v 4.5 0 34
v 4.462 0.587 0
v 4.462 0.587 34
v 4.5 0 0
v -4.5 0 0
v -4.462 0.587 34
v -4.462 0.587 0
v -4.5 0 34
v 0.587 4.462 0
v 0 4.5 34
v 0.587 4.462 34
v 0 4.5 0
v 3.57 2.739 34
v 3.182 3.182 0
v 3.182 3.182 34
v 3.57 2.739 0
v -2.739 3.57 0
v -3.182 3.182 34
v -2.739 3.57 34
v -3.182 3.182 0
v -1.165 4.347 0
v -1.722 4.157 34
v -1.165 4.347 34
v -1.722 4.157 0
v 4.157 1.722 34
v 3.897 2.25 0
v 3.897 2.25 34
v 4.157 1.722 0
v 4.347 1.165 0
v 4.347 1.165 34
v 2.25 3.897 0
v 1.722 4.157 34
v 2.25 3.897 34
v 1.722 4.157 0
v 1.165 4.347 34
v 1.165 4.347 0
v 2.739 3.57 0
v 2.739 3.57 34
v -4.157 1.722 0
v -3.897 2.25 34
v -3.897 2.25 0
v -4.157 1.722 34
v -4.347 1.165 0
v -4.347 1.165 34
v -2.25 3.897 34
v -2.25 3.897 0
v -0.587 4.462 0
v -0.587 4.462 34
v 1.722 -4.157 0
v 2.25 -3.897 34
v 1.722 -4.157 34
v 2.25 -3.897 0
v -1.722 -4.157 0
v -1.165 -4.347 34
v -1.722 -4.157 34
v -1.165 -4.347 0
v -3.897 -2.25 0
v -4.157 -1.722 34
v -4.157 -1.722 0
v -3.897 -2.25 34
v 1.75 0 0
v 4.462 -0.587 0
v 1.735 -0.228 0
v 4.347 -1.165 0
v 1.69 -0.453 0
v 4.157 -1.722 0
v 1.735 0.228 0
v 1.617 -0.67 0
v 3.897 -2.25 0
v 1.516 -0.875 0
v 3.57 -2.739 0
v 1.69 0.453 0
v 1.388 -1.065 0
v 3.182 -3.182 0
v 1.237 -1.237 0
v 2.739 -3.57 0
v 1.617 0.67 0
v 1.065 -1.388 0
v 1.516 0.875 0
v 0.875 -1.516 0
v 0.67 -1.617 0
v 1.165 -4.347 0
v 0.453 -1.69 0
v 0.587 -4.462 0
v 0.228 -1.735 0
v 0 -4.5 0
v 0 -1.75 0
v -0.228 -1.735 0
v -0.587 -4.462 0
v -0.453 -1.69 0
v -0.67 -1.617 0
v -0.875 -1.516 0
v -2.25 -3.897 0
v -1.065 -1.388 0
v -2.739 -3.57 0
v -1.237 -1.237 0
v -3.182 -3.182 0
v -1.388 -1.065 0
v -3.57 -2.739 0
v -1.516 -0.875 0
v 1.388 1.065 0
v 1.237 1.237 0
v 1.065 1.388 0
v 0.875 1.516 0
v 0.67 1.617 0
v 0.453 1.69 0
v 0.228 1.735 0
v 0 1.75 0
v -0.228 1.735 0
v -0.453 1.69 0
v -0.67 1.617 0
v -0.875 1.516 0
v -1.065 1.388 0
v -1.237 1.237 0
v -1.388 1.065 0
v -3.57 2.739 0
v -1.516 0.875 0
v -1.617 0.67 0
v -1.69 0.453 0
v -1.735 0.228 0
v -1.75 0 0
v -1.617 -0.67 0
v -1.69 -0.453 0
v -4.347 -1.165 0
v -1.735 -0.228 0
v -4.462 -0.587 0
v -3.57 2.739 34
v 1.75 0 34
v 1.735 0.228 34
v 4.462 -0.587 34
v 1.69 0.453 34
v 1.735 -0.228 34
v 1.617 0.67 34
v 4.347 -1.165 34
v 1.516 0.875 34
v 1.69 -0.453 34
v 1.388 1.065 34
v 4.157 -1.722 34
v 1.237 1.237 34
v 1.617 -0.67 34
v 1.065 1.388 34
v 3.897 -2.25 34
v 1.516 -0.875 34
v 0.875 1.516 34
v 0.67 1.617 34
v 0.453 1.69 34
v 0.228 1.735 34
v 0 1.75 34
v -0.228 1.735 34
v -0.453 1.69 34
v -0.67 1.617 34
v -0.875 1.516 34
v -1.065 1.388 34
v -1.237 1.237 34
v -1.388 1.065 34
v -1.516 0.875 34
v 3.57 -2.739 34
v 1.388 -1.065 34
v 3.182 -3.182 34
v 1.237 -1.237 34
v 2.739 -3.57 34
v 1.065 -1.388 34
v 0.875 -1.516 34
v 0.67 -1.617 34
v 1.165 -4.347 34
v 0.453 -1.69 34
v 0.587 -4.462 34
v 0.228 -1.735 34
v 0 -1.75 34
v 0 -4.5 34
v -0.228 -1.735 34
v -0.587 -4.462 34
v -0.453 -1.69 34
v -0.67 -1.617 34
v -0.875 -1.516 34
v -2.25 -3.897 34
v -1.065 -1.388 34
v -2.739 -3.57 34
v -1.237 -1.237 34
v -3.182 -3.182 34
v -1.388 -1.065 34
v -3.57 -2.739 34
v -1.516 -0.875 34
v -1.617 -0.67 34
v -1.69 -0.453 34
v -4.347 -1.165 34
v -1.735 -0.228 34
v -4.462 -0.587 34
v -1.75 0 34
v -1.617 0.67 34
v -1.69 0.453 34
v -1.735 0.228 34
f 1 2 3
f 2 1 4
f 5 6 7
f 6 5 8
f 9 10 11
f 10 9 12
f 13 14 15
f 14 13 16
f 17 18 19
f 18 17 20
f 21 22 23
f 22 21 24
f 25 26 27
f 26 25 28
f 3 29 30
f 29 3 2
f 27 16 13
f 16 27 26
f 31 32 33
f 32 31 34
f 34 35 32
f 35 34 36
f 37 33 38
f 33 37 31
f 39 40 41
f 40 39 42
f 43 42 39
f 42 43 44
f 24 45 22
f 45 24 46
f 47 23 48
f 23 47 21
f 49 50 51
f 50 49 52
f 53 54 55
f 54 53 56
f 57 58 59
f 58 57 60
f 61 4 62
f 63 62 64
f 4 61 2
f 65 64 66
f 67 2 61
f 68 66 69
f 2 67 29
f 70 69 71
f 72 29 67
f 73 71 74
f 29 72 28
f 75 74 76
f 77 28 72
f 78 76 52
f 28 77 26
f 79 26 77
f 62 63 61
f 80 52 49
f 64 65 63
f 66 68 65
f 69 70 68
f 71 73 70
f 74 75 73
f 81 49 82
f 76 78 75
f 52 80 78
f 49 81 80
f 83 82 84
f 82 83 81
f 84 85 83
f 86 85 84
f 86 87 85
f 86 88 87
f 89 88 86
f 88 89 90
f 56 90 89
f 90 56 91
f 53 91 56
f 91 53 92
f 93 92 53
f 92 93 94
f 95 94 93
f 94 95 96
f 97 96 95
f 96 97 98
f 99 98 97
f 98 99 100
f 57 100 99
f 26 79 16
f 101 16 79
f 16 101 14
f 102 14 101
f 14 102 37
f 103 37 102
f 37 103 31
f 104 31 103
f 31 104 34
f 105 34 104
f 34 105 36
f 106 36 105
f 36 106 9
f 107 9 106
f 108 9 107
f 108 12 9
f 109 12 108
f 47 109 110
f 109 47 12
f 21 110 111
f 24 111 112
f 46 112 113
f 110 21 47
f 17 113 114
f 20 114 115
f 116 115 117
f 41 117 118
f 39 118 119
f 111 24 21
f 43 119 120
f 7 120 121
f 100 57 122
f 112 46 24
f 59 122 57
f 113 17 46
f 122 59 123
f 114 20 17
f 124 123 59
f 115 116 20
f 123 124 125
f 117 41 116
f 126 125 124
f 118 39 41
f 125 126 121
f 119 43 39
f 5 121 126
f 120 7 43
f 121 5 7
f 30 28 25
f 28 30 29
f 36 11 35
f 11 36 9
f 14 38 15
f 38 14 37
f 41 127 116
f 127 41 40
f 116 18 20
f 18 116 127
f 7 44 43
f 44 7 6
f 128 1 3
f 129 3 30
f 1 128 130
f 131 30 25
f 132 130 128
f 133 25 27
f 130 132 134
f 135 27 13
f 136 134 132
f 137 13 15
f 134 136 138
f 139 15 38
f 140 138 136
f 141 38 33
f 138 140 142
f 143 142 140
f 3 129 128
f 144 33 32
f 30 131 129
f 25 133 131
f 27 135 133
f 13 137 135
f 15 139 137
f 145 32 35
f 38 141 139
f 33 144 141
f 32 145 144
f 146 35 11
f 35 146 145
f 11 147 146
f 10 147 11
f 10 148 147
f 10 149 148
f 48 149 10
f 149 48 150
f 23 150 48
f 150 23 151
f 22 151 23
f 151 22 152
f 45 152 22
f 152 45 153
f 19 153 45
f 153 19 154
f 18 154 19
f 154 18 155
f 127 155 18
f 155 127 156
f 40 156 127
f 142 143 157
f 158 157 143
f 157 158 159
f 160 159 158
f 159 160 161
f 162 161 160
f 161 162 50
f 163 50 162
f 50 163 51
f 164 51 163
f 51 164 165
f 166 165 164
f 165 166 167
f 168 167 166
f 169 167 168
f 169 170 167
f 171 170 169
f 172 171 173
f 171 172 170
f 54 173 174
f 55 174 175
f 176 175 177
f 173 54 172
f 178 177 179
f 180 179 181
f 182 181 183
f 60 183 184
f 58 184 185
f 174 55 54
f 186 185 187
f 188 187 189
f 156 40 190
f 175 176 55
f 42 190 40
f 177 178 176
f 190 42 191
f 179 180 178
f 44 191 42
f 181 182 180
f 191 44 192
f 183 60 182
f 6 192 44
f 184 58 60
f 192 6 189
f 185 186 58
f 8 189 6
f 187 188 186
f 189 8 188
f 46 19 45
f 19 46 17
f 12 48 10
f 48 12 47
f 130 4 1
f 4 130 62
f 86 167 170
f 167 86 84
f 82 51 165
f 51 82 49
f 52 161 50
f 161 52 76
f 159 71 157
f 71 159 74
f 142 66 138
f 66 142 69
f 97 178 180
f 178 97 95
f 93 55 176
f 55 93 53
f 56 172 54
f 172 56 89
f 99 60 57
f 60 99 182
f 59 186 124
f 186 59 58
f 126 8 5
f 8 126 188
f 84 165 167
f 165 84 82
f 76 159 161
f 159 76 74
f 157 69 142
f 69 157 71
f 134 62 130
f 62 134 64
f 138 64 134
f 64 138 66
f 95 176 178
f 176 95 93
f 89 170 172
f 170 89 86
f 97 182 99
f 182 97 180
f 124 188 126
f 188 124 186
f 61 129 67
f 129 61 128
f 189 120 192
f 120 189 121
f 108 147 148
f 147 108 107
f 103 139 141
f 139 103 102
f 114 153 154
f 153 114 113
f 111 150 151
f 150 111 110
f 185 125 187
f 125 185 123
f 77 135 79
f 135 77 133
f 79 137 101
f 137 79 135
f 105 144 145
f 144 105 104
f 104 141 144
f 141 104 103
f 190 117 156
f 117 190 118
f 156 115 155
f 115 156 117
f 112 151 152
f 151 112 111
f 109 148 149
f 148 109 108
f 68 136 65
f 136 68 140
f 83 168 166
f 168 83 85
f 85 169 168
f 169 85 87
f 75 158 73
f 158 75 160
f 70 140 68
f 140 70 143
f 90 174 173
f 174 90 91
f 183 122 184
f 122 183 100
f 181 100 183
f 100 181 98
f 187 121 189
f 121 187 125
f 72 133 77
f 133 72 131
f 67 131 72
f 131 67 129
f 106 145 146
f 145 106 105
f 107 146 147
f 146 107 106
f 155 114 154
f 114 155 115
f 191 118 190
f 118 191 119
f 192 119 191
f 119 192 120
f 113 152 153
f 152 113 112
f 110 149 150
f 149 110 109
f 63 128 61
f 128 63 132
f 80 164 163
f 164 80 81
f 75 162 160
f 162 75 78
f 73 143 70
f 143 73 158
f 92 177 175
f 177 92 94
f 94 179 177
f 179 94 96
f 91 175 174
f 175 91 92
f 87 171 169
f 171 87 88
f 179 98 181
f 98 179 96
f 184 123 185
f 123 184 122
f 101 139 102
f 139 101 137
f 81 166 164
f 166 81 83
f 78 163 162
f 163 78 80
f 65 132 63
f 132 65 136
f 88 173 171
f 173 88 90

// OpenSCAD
// Gen-EE — TOP STANDOFF (2026-11-02 pedestal frame): stator top face -> spider arm, on the 3 arm frame rods. Print x3.
// Same Ø as the old frame standoffs (standoff_od) because the rotor-B rim spins right beside it.
include <parameters.scad>;
$fn = 48;
difference() {
    cylinder(d=standoff_od, h=top_standoff_h);
    translate([0, 0, -0.1]) cylinder(d=m3_clear, h=top_standoff_h + 0.2);
}
